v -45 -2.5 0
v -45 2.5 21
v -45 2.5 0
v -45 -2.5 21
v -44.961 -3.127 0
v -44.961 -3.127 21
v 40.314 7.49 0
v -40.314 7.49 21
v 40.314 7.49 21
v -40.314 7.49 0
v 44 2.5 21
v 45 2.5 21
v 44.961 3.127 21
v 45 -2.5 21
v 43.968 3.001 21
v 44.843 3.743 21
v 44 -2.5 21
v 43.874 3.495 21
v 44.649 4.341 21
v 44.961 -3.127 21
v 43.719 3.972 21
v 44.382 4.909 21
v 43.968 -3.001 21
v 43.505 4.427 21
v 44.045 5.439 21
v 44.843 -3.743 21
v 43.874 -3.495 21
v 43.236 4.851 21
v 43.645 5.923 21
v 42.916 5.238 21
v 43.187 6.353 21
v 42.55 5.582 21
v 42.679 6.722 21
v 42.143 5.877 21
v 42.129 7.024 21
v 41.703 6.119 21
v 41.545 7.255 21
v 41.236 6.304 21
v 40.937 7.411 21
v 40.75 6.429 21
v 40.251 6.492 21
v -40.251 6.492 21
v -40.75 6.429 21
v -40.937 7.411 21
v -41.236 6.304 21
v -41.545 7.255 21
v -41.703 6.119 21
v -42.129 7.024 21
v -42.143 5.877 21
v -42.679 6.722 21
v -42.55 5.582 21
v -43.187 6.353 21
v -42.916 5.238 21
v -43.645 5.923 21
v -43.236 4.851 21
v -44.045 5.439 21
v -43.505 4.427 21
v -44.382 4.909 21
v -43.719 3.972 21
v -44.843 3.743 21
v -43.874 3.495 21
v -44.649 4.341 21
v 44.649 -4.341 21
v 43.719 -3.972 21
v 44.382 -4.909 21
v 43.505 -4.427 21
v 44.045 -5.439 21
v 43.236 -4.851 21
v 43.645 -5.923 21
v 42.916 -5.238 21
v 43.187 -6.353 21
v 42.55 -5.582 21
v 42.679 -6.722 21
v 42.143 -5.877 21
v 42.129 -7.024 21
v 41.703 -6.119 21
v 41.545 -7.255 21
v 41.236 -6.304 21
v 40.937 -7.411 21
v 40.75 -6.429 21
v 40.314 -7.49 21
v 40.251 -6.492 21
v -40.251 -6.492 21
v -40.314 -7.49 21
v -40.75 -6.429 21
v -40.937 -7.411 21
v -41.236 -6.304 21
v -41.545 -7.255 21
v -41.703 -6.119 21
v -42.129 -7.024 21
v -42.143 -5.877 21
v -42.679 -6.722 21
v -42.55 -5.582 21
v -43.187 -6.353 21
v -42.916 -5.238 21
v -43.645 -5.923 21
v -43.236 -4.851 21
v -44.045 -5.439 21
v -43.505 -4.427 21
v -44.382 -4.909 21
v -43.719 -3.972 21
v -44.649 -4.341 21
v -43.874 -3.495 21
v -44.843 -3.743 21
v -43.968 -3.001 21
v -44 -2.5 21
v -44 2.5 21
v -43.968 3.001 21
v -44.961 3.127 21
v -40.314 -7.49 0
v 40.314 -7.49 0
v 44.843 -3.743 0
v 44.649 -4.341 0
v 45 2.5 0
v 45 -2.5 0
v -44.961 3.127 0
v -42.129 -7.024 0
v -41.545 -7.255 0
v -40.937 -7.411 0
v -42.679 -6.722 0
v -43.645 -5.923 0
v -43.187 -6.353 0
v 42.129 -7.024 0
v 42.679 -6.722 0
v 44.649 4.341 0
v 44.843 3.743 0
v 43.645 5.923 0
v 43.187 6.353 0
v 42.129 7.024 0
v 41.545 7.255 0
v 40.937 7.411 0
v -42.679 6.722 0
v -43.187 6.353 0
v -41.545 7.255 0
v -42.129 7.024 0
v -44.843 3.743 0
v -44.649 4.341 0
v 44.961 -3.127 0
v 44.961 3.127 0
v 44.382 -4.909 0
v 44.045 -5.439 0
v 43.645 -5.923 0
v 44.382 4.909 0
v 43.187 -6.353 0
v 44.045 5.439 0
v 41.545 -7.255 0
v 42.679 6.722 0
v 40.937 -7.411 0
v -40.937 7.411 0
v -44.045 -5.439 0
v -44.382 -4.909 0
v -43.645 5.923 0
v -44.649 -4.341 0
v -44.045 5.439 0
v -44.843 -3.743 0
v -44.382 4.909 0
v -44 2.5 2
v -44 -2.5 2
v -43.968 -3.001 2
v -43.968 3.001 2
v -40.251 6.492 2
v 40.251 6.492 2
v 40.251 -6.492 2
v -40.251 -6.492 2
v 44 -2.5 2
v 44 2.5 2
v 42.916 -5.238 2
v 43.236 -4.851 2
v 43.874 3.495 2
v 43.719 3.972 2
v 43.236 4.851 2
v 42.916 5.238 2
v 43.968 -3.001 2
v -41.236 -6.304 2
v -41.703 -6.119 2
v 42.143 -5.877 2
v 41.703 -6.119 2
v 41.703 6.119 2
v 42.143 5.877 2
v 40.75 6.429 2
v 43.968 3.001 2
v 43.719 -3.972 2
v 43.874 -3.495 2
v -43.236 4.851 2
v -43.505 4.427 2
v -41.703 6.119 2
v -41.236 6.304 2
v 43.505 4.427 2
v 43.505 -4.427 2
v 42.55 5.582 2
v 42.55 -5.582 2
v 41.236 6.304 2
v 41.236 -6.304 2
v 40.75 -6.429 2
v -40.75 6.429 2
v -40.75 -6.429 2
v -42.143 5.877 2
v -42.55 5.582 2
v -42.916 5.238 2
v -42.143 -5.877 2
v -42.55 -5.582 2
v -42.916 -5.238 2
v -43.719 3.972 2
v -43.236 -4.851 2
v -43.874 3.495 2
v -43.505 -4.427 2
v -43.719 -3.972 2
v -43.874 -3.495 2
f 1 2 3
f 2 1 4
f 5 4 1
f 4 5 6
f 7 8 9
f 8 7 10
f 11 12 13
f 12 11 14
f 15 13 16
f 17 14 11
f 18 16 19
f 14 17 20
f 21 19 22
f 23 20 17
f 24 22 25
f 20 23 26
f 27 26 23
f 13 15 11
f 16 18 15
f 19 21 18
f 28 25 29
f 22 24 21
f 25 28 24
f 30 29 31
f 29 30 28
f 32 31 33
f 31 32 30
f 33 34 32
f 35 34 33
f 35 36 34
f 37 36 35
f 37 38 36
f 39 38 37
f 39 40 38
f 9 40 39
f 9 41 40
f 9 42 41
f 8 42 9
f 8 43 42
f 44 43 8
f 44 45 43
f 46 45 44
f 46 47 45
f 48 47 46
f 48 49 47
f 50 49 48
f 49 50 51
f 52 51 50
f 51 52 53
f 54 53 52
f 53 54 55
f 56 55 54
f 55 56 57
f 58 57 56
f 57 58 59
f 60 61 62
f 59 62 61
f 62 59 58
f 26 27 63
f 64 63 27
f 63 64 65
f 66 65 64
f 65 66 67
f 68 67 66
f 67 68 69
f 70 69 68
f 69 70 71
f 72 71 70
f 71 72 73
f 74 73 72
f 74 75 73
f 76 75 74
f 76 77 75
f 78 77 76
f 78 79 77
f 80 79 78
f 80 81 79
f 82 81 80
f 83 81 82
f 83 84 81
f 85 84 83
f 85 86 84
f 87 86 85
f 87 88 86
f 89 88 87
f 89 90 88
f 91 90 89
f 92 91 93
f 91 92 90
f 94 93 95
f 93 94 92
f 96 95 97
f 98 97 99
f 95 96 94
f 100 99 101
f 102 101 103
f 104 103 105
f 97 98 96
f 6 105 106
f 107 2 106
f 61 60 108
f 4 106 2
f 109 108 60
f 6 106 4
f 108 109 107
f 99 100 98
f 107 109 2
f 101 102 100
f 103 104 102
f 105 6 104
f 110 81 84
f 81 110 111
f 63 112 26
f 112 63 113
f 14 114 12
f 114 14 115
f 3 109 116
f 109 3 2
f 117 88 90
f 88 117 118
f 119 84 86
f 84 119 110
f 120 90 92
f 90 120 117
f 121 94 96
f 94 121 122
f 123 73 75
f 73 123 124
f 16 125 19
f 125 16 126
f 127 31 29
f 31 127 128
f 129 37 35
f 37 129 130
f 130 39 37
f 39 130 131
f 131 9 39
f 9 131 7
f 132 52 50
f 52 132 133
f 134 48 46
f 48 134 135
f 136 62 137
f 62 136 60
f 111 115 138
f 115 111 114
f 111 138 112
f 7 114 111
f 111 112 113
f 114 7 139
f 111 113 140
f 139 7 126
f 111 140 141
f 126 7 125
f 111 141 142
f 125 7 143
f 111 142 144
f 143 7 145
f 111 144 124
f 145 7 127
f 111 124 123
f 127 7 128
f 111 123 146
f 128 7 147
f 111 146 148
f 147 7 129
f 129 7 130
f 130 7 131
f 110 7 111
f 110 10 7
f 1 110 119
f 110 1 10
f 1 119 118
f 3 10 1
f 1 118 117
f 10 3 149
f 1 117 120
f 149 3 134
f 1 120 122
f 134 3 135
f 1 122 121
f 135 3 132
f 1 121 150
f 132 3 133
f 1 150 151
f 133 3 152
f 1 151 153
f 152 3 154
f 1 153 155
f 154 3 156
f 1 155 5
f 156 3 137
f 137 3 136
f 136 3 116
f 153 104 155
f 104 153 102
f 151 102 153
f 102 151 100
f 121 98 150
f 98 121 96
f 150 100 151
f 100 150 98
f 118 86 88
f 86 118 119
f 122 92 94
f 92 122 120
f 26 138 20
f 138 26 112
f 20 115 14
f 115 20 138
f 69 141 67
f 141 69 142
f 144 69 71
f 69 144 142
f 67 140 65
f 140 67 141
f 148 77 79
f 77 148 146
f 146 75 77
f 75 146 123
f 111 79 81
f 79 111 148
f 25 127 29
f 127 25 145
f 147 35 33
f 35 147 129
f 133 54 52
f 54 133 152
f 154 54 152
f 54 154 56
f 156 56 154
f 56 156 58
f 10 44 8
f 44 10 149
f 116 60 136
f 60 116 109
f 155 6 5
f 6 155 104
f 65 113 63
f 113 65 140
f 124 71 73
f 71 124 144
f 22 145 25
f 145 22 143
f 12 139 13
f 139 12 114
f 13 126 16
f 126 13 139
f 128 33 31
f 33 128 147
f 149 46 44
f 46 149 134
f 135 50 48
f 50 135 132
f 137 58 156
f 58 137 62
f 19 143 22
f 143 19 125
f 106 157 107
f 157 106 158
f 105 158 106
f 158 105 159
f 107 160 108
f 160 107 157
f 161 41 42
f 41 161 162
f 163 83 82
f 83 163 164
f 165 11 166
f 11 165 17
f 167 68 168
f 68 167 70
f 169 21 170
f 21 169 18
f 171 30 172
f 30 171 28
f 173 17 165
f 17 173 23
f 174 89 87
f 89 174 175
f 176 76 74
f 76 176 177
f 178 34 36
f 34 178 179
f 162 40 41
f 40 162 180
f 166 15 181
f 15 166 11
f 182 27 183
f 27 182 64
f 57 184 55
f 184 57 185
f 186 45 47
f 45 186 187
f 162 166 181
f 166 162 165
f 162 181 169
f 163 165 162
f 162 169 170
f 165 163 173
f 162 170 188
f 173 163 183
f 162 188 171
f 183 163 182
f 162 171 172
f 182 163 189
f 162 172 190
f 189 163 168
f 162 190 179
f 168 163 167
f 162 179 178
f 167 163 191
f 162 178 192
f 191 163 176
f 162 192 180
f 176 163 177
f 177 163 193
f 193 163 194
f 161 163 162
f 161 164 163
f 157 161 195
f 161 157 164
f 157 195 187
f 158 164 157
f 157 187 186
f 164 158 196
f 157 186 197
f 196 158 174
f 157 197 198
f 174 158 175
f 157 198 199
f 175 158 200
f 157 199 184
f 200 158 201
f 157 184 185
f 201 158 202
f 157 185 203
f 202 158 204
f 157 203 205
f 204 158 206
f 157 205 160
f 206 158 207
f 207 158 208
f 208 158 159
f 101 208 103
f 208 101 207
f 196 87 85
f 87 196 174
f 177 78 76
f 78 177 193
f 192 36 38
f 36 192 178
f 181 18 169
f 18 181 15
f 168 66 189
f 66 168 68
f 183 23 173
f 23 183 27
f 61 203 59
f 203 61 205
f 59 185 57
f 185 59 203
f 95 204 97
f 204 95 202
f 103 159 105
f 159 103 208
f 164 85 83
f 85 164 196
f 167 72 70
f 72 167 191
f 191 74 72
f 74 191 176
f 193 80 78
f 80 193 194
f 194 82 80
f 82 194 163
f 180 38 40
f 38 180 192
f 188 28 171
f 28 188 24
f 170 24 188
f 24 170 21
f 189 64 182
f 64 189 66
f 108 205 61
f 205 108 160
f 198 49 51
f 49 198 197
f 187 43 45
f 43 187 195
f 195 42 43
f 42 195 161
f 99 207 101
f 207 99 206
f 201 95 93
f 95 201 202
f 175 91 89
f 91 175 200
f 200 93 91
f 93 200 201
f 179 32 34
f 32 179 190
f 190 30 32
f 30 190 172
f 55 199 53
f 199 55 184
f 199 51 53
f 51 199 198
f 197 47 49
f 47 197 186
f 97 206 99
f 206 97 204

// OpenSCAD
$fn = 50;


difference() {
	union() {
		hull() {
			translate(v = [-40.0000000000, 2.5000000000, 0]) {
				cylinder(h = 21, r = 5);
			}
			translate(v = [40.0000000000, 2.5000000000, 0]) {
				cylinder(h = 21, r = 5);
			}
			translate(v = [-40.0000000000, -2.5000000000, 0]) {
				cylinder(h = 21, r = 5);
			}
			translate(v = [40.0000000000, -2.5000000000, 0]) {
				cylinder(h = 21, r = 5);
			}
		}
	}
	union() {
		translate(v = [0, 0, 2]) {
			hull() {
				translate(v = [-40.0000000000, 2.5000000000, 0]) {
					cylinder(h = 19, r = 4);
				}
				translate(v = [40.0000000000, 2.5000000000, 0]) {
					cylinder(h = 19, r = 4);
				}
				translate(v = [-40.0000000000, -2.5000000000, 0]) {
					cylinder(h = 19, r = 4);
				}
				translate(v = [40.0000000000, -2.5000000000, 0]) {
					cylinder(h = 19, r = 4);
				}
			}
		}
	}
}
